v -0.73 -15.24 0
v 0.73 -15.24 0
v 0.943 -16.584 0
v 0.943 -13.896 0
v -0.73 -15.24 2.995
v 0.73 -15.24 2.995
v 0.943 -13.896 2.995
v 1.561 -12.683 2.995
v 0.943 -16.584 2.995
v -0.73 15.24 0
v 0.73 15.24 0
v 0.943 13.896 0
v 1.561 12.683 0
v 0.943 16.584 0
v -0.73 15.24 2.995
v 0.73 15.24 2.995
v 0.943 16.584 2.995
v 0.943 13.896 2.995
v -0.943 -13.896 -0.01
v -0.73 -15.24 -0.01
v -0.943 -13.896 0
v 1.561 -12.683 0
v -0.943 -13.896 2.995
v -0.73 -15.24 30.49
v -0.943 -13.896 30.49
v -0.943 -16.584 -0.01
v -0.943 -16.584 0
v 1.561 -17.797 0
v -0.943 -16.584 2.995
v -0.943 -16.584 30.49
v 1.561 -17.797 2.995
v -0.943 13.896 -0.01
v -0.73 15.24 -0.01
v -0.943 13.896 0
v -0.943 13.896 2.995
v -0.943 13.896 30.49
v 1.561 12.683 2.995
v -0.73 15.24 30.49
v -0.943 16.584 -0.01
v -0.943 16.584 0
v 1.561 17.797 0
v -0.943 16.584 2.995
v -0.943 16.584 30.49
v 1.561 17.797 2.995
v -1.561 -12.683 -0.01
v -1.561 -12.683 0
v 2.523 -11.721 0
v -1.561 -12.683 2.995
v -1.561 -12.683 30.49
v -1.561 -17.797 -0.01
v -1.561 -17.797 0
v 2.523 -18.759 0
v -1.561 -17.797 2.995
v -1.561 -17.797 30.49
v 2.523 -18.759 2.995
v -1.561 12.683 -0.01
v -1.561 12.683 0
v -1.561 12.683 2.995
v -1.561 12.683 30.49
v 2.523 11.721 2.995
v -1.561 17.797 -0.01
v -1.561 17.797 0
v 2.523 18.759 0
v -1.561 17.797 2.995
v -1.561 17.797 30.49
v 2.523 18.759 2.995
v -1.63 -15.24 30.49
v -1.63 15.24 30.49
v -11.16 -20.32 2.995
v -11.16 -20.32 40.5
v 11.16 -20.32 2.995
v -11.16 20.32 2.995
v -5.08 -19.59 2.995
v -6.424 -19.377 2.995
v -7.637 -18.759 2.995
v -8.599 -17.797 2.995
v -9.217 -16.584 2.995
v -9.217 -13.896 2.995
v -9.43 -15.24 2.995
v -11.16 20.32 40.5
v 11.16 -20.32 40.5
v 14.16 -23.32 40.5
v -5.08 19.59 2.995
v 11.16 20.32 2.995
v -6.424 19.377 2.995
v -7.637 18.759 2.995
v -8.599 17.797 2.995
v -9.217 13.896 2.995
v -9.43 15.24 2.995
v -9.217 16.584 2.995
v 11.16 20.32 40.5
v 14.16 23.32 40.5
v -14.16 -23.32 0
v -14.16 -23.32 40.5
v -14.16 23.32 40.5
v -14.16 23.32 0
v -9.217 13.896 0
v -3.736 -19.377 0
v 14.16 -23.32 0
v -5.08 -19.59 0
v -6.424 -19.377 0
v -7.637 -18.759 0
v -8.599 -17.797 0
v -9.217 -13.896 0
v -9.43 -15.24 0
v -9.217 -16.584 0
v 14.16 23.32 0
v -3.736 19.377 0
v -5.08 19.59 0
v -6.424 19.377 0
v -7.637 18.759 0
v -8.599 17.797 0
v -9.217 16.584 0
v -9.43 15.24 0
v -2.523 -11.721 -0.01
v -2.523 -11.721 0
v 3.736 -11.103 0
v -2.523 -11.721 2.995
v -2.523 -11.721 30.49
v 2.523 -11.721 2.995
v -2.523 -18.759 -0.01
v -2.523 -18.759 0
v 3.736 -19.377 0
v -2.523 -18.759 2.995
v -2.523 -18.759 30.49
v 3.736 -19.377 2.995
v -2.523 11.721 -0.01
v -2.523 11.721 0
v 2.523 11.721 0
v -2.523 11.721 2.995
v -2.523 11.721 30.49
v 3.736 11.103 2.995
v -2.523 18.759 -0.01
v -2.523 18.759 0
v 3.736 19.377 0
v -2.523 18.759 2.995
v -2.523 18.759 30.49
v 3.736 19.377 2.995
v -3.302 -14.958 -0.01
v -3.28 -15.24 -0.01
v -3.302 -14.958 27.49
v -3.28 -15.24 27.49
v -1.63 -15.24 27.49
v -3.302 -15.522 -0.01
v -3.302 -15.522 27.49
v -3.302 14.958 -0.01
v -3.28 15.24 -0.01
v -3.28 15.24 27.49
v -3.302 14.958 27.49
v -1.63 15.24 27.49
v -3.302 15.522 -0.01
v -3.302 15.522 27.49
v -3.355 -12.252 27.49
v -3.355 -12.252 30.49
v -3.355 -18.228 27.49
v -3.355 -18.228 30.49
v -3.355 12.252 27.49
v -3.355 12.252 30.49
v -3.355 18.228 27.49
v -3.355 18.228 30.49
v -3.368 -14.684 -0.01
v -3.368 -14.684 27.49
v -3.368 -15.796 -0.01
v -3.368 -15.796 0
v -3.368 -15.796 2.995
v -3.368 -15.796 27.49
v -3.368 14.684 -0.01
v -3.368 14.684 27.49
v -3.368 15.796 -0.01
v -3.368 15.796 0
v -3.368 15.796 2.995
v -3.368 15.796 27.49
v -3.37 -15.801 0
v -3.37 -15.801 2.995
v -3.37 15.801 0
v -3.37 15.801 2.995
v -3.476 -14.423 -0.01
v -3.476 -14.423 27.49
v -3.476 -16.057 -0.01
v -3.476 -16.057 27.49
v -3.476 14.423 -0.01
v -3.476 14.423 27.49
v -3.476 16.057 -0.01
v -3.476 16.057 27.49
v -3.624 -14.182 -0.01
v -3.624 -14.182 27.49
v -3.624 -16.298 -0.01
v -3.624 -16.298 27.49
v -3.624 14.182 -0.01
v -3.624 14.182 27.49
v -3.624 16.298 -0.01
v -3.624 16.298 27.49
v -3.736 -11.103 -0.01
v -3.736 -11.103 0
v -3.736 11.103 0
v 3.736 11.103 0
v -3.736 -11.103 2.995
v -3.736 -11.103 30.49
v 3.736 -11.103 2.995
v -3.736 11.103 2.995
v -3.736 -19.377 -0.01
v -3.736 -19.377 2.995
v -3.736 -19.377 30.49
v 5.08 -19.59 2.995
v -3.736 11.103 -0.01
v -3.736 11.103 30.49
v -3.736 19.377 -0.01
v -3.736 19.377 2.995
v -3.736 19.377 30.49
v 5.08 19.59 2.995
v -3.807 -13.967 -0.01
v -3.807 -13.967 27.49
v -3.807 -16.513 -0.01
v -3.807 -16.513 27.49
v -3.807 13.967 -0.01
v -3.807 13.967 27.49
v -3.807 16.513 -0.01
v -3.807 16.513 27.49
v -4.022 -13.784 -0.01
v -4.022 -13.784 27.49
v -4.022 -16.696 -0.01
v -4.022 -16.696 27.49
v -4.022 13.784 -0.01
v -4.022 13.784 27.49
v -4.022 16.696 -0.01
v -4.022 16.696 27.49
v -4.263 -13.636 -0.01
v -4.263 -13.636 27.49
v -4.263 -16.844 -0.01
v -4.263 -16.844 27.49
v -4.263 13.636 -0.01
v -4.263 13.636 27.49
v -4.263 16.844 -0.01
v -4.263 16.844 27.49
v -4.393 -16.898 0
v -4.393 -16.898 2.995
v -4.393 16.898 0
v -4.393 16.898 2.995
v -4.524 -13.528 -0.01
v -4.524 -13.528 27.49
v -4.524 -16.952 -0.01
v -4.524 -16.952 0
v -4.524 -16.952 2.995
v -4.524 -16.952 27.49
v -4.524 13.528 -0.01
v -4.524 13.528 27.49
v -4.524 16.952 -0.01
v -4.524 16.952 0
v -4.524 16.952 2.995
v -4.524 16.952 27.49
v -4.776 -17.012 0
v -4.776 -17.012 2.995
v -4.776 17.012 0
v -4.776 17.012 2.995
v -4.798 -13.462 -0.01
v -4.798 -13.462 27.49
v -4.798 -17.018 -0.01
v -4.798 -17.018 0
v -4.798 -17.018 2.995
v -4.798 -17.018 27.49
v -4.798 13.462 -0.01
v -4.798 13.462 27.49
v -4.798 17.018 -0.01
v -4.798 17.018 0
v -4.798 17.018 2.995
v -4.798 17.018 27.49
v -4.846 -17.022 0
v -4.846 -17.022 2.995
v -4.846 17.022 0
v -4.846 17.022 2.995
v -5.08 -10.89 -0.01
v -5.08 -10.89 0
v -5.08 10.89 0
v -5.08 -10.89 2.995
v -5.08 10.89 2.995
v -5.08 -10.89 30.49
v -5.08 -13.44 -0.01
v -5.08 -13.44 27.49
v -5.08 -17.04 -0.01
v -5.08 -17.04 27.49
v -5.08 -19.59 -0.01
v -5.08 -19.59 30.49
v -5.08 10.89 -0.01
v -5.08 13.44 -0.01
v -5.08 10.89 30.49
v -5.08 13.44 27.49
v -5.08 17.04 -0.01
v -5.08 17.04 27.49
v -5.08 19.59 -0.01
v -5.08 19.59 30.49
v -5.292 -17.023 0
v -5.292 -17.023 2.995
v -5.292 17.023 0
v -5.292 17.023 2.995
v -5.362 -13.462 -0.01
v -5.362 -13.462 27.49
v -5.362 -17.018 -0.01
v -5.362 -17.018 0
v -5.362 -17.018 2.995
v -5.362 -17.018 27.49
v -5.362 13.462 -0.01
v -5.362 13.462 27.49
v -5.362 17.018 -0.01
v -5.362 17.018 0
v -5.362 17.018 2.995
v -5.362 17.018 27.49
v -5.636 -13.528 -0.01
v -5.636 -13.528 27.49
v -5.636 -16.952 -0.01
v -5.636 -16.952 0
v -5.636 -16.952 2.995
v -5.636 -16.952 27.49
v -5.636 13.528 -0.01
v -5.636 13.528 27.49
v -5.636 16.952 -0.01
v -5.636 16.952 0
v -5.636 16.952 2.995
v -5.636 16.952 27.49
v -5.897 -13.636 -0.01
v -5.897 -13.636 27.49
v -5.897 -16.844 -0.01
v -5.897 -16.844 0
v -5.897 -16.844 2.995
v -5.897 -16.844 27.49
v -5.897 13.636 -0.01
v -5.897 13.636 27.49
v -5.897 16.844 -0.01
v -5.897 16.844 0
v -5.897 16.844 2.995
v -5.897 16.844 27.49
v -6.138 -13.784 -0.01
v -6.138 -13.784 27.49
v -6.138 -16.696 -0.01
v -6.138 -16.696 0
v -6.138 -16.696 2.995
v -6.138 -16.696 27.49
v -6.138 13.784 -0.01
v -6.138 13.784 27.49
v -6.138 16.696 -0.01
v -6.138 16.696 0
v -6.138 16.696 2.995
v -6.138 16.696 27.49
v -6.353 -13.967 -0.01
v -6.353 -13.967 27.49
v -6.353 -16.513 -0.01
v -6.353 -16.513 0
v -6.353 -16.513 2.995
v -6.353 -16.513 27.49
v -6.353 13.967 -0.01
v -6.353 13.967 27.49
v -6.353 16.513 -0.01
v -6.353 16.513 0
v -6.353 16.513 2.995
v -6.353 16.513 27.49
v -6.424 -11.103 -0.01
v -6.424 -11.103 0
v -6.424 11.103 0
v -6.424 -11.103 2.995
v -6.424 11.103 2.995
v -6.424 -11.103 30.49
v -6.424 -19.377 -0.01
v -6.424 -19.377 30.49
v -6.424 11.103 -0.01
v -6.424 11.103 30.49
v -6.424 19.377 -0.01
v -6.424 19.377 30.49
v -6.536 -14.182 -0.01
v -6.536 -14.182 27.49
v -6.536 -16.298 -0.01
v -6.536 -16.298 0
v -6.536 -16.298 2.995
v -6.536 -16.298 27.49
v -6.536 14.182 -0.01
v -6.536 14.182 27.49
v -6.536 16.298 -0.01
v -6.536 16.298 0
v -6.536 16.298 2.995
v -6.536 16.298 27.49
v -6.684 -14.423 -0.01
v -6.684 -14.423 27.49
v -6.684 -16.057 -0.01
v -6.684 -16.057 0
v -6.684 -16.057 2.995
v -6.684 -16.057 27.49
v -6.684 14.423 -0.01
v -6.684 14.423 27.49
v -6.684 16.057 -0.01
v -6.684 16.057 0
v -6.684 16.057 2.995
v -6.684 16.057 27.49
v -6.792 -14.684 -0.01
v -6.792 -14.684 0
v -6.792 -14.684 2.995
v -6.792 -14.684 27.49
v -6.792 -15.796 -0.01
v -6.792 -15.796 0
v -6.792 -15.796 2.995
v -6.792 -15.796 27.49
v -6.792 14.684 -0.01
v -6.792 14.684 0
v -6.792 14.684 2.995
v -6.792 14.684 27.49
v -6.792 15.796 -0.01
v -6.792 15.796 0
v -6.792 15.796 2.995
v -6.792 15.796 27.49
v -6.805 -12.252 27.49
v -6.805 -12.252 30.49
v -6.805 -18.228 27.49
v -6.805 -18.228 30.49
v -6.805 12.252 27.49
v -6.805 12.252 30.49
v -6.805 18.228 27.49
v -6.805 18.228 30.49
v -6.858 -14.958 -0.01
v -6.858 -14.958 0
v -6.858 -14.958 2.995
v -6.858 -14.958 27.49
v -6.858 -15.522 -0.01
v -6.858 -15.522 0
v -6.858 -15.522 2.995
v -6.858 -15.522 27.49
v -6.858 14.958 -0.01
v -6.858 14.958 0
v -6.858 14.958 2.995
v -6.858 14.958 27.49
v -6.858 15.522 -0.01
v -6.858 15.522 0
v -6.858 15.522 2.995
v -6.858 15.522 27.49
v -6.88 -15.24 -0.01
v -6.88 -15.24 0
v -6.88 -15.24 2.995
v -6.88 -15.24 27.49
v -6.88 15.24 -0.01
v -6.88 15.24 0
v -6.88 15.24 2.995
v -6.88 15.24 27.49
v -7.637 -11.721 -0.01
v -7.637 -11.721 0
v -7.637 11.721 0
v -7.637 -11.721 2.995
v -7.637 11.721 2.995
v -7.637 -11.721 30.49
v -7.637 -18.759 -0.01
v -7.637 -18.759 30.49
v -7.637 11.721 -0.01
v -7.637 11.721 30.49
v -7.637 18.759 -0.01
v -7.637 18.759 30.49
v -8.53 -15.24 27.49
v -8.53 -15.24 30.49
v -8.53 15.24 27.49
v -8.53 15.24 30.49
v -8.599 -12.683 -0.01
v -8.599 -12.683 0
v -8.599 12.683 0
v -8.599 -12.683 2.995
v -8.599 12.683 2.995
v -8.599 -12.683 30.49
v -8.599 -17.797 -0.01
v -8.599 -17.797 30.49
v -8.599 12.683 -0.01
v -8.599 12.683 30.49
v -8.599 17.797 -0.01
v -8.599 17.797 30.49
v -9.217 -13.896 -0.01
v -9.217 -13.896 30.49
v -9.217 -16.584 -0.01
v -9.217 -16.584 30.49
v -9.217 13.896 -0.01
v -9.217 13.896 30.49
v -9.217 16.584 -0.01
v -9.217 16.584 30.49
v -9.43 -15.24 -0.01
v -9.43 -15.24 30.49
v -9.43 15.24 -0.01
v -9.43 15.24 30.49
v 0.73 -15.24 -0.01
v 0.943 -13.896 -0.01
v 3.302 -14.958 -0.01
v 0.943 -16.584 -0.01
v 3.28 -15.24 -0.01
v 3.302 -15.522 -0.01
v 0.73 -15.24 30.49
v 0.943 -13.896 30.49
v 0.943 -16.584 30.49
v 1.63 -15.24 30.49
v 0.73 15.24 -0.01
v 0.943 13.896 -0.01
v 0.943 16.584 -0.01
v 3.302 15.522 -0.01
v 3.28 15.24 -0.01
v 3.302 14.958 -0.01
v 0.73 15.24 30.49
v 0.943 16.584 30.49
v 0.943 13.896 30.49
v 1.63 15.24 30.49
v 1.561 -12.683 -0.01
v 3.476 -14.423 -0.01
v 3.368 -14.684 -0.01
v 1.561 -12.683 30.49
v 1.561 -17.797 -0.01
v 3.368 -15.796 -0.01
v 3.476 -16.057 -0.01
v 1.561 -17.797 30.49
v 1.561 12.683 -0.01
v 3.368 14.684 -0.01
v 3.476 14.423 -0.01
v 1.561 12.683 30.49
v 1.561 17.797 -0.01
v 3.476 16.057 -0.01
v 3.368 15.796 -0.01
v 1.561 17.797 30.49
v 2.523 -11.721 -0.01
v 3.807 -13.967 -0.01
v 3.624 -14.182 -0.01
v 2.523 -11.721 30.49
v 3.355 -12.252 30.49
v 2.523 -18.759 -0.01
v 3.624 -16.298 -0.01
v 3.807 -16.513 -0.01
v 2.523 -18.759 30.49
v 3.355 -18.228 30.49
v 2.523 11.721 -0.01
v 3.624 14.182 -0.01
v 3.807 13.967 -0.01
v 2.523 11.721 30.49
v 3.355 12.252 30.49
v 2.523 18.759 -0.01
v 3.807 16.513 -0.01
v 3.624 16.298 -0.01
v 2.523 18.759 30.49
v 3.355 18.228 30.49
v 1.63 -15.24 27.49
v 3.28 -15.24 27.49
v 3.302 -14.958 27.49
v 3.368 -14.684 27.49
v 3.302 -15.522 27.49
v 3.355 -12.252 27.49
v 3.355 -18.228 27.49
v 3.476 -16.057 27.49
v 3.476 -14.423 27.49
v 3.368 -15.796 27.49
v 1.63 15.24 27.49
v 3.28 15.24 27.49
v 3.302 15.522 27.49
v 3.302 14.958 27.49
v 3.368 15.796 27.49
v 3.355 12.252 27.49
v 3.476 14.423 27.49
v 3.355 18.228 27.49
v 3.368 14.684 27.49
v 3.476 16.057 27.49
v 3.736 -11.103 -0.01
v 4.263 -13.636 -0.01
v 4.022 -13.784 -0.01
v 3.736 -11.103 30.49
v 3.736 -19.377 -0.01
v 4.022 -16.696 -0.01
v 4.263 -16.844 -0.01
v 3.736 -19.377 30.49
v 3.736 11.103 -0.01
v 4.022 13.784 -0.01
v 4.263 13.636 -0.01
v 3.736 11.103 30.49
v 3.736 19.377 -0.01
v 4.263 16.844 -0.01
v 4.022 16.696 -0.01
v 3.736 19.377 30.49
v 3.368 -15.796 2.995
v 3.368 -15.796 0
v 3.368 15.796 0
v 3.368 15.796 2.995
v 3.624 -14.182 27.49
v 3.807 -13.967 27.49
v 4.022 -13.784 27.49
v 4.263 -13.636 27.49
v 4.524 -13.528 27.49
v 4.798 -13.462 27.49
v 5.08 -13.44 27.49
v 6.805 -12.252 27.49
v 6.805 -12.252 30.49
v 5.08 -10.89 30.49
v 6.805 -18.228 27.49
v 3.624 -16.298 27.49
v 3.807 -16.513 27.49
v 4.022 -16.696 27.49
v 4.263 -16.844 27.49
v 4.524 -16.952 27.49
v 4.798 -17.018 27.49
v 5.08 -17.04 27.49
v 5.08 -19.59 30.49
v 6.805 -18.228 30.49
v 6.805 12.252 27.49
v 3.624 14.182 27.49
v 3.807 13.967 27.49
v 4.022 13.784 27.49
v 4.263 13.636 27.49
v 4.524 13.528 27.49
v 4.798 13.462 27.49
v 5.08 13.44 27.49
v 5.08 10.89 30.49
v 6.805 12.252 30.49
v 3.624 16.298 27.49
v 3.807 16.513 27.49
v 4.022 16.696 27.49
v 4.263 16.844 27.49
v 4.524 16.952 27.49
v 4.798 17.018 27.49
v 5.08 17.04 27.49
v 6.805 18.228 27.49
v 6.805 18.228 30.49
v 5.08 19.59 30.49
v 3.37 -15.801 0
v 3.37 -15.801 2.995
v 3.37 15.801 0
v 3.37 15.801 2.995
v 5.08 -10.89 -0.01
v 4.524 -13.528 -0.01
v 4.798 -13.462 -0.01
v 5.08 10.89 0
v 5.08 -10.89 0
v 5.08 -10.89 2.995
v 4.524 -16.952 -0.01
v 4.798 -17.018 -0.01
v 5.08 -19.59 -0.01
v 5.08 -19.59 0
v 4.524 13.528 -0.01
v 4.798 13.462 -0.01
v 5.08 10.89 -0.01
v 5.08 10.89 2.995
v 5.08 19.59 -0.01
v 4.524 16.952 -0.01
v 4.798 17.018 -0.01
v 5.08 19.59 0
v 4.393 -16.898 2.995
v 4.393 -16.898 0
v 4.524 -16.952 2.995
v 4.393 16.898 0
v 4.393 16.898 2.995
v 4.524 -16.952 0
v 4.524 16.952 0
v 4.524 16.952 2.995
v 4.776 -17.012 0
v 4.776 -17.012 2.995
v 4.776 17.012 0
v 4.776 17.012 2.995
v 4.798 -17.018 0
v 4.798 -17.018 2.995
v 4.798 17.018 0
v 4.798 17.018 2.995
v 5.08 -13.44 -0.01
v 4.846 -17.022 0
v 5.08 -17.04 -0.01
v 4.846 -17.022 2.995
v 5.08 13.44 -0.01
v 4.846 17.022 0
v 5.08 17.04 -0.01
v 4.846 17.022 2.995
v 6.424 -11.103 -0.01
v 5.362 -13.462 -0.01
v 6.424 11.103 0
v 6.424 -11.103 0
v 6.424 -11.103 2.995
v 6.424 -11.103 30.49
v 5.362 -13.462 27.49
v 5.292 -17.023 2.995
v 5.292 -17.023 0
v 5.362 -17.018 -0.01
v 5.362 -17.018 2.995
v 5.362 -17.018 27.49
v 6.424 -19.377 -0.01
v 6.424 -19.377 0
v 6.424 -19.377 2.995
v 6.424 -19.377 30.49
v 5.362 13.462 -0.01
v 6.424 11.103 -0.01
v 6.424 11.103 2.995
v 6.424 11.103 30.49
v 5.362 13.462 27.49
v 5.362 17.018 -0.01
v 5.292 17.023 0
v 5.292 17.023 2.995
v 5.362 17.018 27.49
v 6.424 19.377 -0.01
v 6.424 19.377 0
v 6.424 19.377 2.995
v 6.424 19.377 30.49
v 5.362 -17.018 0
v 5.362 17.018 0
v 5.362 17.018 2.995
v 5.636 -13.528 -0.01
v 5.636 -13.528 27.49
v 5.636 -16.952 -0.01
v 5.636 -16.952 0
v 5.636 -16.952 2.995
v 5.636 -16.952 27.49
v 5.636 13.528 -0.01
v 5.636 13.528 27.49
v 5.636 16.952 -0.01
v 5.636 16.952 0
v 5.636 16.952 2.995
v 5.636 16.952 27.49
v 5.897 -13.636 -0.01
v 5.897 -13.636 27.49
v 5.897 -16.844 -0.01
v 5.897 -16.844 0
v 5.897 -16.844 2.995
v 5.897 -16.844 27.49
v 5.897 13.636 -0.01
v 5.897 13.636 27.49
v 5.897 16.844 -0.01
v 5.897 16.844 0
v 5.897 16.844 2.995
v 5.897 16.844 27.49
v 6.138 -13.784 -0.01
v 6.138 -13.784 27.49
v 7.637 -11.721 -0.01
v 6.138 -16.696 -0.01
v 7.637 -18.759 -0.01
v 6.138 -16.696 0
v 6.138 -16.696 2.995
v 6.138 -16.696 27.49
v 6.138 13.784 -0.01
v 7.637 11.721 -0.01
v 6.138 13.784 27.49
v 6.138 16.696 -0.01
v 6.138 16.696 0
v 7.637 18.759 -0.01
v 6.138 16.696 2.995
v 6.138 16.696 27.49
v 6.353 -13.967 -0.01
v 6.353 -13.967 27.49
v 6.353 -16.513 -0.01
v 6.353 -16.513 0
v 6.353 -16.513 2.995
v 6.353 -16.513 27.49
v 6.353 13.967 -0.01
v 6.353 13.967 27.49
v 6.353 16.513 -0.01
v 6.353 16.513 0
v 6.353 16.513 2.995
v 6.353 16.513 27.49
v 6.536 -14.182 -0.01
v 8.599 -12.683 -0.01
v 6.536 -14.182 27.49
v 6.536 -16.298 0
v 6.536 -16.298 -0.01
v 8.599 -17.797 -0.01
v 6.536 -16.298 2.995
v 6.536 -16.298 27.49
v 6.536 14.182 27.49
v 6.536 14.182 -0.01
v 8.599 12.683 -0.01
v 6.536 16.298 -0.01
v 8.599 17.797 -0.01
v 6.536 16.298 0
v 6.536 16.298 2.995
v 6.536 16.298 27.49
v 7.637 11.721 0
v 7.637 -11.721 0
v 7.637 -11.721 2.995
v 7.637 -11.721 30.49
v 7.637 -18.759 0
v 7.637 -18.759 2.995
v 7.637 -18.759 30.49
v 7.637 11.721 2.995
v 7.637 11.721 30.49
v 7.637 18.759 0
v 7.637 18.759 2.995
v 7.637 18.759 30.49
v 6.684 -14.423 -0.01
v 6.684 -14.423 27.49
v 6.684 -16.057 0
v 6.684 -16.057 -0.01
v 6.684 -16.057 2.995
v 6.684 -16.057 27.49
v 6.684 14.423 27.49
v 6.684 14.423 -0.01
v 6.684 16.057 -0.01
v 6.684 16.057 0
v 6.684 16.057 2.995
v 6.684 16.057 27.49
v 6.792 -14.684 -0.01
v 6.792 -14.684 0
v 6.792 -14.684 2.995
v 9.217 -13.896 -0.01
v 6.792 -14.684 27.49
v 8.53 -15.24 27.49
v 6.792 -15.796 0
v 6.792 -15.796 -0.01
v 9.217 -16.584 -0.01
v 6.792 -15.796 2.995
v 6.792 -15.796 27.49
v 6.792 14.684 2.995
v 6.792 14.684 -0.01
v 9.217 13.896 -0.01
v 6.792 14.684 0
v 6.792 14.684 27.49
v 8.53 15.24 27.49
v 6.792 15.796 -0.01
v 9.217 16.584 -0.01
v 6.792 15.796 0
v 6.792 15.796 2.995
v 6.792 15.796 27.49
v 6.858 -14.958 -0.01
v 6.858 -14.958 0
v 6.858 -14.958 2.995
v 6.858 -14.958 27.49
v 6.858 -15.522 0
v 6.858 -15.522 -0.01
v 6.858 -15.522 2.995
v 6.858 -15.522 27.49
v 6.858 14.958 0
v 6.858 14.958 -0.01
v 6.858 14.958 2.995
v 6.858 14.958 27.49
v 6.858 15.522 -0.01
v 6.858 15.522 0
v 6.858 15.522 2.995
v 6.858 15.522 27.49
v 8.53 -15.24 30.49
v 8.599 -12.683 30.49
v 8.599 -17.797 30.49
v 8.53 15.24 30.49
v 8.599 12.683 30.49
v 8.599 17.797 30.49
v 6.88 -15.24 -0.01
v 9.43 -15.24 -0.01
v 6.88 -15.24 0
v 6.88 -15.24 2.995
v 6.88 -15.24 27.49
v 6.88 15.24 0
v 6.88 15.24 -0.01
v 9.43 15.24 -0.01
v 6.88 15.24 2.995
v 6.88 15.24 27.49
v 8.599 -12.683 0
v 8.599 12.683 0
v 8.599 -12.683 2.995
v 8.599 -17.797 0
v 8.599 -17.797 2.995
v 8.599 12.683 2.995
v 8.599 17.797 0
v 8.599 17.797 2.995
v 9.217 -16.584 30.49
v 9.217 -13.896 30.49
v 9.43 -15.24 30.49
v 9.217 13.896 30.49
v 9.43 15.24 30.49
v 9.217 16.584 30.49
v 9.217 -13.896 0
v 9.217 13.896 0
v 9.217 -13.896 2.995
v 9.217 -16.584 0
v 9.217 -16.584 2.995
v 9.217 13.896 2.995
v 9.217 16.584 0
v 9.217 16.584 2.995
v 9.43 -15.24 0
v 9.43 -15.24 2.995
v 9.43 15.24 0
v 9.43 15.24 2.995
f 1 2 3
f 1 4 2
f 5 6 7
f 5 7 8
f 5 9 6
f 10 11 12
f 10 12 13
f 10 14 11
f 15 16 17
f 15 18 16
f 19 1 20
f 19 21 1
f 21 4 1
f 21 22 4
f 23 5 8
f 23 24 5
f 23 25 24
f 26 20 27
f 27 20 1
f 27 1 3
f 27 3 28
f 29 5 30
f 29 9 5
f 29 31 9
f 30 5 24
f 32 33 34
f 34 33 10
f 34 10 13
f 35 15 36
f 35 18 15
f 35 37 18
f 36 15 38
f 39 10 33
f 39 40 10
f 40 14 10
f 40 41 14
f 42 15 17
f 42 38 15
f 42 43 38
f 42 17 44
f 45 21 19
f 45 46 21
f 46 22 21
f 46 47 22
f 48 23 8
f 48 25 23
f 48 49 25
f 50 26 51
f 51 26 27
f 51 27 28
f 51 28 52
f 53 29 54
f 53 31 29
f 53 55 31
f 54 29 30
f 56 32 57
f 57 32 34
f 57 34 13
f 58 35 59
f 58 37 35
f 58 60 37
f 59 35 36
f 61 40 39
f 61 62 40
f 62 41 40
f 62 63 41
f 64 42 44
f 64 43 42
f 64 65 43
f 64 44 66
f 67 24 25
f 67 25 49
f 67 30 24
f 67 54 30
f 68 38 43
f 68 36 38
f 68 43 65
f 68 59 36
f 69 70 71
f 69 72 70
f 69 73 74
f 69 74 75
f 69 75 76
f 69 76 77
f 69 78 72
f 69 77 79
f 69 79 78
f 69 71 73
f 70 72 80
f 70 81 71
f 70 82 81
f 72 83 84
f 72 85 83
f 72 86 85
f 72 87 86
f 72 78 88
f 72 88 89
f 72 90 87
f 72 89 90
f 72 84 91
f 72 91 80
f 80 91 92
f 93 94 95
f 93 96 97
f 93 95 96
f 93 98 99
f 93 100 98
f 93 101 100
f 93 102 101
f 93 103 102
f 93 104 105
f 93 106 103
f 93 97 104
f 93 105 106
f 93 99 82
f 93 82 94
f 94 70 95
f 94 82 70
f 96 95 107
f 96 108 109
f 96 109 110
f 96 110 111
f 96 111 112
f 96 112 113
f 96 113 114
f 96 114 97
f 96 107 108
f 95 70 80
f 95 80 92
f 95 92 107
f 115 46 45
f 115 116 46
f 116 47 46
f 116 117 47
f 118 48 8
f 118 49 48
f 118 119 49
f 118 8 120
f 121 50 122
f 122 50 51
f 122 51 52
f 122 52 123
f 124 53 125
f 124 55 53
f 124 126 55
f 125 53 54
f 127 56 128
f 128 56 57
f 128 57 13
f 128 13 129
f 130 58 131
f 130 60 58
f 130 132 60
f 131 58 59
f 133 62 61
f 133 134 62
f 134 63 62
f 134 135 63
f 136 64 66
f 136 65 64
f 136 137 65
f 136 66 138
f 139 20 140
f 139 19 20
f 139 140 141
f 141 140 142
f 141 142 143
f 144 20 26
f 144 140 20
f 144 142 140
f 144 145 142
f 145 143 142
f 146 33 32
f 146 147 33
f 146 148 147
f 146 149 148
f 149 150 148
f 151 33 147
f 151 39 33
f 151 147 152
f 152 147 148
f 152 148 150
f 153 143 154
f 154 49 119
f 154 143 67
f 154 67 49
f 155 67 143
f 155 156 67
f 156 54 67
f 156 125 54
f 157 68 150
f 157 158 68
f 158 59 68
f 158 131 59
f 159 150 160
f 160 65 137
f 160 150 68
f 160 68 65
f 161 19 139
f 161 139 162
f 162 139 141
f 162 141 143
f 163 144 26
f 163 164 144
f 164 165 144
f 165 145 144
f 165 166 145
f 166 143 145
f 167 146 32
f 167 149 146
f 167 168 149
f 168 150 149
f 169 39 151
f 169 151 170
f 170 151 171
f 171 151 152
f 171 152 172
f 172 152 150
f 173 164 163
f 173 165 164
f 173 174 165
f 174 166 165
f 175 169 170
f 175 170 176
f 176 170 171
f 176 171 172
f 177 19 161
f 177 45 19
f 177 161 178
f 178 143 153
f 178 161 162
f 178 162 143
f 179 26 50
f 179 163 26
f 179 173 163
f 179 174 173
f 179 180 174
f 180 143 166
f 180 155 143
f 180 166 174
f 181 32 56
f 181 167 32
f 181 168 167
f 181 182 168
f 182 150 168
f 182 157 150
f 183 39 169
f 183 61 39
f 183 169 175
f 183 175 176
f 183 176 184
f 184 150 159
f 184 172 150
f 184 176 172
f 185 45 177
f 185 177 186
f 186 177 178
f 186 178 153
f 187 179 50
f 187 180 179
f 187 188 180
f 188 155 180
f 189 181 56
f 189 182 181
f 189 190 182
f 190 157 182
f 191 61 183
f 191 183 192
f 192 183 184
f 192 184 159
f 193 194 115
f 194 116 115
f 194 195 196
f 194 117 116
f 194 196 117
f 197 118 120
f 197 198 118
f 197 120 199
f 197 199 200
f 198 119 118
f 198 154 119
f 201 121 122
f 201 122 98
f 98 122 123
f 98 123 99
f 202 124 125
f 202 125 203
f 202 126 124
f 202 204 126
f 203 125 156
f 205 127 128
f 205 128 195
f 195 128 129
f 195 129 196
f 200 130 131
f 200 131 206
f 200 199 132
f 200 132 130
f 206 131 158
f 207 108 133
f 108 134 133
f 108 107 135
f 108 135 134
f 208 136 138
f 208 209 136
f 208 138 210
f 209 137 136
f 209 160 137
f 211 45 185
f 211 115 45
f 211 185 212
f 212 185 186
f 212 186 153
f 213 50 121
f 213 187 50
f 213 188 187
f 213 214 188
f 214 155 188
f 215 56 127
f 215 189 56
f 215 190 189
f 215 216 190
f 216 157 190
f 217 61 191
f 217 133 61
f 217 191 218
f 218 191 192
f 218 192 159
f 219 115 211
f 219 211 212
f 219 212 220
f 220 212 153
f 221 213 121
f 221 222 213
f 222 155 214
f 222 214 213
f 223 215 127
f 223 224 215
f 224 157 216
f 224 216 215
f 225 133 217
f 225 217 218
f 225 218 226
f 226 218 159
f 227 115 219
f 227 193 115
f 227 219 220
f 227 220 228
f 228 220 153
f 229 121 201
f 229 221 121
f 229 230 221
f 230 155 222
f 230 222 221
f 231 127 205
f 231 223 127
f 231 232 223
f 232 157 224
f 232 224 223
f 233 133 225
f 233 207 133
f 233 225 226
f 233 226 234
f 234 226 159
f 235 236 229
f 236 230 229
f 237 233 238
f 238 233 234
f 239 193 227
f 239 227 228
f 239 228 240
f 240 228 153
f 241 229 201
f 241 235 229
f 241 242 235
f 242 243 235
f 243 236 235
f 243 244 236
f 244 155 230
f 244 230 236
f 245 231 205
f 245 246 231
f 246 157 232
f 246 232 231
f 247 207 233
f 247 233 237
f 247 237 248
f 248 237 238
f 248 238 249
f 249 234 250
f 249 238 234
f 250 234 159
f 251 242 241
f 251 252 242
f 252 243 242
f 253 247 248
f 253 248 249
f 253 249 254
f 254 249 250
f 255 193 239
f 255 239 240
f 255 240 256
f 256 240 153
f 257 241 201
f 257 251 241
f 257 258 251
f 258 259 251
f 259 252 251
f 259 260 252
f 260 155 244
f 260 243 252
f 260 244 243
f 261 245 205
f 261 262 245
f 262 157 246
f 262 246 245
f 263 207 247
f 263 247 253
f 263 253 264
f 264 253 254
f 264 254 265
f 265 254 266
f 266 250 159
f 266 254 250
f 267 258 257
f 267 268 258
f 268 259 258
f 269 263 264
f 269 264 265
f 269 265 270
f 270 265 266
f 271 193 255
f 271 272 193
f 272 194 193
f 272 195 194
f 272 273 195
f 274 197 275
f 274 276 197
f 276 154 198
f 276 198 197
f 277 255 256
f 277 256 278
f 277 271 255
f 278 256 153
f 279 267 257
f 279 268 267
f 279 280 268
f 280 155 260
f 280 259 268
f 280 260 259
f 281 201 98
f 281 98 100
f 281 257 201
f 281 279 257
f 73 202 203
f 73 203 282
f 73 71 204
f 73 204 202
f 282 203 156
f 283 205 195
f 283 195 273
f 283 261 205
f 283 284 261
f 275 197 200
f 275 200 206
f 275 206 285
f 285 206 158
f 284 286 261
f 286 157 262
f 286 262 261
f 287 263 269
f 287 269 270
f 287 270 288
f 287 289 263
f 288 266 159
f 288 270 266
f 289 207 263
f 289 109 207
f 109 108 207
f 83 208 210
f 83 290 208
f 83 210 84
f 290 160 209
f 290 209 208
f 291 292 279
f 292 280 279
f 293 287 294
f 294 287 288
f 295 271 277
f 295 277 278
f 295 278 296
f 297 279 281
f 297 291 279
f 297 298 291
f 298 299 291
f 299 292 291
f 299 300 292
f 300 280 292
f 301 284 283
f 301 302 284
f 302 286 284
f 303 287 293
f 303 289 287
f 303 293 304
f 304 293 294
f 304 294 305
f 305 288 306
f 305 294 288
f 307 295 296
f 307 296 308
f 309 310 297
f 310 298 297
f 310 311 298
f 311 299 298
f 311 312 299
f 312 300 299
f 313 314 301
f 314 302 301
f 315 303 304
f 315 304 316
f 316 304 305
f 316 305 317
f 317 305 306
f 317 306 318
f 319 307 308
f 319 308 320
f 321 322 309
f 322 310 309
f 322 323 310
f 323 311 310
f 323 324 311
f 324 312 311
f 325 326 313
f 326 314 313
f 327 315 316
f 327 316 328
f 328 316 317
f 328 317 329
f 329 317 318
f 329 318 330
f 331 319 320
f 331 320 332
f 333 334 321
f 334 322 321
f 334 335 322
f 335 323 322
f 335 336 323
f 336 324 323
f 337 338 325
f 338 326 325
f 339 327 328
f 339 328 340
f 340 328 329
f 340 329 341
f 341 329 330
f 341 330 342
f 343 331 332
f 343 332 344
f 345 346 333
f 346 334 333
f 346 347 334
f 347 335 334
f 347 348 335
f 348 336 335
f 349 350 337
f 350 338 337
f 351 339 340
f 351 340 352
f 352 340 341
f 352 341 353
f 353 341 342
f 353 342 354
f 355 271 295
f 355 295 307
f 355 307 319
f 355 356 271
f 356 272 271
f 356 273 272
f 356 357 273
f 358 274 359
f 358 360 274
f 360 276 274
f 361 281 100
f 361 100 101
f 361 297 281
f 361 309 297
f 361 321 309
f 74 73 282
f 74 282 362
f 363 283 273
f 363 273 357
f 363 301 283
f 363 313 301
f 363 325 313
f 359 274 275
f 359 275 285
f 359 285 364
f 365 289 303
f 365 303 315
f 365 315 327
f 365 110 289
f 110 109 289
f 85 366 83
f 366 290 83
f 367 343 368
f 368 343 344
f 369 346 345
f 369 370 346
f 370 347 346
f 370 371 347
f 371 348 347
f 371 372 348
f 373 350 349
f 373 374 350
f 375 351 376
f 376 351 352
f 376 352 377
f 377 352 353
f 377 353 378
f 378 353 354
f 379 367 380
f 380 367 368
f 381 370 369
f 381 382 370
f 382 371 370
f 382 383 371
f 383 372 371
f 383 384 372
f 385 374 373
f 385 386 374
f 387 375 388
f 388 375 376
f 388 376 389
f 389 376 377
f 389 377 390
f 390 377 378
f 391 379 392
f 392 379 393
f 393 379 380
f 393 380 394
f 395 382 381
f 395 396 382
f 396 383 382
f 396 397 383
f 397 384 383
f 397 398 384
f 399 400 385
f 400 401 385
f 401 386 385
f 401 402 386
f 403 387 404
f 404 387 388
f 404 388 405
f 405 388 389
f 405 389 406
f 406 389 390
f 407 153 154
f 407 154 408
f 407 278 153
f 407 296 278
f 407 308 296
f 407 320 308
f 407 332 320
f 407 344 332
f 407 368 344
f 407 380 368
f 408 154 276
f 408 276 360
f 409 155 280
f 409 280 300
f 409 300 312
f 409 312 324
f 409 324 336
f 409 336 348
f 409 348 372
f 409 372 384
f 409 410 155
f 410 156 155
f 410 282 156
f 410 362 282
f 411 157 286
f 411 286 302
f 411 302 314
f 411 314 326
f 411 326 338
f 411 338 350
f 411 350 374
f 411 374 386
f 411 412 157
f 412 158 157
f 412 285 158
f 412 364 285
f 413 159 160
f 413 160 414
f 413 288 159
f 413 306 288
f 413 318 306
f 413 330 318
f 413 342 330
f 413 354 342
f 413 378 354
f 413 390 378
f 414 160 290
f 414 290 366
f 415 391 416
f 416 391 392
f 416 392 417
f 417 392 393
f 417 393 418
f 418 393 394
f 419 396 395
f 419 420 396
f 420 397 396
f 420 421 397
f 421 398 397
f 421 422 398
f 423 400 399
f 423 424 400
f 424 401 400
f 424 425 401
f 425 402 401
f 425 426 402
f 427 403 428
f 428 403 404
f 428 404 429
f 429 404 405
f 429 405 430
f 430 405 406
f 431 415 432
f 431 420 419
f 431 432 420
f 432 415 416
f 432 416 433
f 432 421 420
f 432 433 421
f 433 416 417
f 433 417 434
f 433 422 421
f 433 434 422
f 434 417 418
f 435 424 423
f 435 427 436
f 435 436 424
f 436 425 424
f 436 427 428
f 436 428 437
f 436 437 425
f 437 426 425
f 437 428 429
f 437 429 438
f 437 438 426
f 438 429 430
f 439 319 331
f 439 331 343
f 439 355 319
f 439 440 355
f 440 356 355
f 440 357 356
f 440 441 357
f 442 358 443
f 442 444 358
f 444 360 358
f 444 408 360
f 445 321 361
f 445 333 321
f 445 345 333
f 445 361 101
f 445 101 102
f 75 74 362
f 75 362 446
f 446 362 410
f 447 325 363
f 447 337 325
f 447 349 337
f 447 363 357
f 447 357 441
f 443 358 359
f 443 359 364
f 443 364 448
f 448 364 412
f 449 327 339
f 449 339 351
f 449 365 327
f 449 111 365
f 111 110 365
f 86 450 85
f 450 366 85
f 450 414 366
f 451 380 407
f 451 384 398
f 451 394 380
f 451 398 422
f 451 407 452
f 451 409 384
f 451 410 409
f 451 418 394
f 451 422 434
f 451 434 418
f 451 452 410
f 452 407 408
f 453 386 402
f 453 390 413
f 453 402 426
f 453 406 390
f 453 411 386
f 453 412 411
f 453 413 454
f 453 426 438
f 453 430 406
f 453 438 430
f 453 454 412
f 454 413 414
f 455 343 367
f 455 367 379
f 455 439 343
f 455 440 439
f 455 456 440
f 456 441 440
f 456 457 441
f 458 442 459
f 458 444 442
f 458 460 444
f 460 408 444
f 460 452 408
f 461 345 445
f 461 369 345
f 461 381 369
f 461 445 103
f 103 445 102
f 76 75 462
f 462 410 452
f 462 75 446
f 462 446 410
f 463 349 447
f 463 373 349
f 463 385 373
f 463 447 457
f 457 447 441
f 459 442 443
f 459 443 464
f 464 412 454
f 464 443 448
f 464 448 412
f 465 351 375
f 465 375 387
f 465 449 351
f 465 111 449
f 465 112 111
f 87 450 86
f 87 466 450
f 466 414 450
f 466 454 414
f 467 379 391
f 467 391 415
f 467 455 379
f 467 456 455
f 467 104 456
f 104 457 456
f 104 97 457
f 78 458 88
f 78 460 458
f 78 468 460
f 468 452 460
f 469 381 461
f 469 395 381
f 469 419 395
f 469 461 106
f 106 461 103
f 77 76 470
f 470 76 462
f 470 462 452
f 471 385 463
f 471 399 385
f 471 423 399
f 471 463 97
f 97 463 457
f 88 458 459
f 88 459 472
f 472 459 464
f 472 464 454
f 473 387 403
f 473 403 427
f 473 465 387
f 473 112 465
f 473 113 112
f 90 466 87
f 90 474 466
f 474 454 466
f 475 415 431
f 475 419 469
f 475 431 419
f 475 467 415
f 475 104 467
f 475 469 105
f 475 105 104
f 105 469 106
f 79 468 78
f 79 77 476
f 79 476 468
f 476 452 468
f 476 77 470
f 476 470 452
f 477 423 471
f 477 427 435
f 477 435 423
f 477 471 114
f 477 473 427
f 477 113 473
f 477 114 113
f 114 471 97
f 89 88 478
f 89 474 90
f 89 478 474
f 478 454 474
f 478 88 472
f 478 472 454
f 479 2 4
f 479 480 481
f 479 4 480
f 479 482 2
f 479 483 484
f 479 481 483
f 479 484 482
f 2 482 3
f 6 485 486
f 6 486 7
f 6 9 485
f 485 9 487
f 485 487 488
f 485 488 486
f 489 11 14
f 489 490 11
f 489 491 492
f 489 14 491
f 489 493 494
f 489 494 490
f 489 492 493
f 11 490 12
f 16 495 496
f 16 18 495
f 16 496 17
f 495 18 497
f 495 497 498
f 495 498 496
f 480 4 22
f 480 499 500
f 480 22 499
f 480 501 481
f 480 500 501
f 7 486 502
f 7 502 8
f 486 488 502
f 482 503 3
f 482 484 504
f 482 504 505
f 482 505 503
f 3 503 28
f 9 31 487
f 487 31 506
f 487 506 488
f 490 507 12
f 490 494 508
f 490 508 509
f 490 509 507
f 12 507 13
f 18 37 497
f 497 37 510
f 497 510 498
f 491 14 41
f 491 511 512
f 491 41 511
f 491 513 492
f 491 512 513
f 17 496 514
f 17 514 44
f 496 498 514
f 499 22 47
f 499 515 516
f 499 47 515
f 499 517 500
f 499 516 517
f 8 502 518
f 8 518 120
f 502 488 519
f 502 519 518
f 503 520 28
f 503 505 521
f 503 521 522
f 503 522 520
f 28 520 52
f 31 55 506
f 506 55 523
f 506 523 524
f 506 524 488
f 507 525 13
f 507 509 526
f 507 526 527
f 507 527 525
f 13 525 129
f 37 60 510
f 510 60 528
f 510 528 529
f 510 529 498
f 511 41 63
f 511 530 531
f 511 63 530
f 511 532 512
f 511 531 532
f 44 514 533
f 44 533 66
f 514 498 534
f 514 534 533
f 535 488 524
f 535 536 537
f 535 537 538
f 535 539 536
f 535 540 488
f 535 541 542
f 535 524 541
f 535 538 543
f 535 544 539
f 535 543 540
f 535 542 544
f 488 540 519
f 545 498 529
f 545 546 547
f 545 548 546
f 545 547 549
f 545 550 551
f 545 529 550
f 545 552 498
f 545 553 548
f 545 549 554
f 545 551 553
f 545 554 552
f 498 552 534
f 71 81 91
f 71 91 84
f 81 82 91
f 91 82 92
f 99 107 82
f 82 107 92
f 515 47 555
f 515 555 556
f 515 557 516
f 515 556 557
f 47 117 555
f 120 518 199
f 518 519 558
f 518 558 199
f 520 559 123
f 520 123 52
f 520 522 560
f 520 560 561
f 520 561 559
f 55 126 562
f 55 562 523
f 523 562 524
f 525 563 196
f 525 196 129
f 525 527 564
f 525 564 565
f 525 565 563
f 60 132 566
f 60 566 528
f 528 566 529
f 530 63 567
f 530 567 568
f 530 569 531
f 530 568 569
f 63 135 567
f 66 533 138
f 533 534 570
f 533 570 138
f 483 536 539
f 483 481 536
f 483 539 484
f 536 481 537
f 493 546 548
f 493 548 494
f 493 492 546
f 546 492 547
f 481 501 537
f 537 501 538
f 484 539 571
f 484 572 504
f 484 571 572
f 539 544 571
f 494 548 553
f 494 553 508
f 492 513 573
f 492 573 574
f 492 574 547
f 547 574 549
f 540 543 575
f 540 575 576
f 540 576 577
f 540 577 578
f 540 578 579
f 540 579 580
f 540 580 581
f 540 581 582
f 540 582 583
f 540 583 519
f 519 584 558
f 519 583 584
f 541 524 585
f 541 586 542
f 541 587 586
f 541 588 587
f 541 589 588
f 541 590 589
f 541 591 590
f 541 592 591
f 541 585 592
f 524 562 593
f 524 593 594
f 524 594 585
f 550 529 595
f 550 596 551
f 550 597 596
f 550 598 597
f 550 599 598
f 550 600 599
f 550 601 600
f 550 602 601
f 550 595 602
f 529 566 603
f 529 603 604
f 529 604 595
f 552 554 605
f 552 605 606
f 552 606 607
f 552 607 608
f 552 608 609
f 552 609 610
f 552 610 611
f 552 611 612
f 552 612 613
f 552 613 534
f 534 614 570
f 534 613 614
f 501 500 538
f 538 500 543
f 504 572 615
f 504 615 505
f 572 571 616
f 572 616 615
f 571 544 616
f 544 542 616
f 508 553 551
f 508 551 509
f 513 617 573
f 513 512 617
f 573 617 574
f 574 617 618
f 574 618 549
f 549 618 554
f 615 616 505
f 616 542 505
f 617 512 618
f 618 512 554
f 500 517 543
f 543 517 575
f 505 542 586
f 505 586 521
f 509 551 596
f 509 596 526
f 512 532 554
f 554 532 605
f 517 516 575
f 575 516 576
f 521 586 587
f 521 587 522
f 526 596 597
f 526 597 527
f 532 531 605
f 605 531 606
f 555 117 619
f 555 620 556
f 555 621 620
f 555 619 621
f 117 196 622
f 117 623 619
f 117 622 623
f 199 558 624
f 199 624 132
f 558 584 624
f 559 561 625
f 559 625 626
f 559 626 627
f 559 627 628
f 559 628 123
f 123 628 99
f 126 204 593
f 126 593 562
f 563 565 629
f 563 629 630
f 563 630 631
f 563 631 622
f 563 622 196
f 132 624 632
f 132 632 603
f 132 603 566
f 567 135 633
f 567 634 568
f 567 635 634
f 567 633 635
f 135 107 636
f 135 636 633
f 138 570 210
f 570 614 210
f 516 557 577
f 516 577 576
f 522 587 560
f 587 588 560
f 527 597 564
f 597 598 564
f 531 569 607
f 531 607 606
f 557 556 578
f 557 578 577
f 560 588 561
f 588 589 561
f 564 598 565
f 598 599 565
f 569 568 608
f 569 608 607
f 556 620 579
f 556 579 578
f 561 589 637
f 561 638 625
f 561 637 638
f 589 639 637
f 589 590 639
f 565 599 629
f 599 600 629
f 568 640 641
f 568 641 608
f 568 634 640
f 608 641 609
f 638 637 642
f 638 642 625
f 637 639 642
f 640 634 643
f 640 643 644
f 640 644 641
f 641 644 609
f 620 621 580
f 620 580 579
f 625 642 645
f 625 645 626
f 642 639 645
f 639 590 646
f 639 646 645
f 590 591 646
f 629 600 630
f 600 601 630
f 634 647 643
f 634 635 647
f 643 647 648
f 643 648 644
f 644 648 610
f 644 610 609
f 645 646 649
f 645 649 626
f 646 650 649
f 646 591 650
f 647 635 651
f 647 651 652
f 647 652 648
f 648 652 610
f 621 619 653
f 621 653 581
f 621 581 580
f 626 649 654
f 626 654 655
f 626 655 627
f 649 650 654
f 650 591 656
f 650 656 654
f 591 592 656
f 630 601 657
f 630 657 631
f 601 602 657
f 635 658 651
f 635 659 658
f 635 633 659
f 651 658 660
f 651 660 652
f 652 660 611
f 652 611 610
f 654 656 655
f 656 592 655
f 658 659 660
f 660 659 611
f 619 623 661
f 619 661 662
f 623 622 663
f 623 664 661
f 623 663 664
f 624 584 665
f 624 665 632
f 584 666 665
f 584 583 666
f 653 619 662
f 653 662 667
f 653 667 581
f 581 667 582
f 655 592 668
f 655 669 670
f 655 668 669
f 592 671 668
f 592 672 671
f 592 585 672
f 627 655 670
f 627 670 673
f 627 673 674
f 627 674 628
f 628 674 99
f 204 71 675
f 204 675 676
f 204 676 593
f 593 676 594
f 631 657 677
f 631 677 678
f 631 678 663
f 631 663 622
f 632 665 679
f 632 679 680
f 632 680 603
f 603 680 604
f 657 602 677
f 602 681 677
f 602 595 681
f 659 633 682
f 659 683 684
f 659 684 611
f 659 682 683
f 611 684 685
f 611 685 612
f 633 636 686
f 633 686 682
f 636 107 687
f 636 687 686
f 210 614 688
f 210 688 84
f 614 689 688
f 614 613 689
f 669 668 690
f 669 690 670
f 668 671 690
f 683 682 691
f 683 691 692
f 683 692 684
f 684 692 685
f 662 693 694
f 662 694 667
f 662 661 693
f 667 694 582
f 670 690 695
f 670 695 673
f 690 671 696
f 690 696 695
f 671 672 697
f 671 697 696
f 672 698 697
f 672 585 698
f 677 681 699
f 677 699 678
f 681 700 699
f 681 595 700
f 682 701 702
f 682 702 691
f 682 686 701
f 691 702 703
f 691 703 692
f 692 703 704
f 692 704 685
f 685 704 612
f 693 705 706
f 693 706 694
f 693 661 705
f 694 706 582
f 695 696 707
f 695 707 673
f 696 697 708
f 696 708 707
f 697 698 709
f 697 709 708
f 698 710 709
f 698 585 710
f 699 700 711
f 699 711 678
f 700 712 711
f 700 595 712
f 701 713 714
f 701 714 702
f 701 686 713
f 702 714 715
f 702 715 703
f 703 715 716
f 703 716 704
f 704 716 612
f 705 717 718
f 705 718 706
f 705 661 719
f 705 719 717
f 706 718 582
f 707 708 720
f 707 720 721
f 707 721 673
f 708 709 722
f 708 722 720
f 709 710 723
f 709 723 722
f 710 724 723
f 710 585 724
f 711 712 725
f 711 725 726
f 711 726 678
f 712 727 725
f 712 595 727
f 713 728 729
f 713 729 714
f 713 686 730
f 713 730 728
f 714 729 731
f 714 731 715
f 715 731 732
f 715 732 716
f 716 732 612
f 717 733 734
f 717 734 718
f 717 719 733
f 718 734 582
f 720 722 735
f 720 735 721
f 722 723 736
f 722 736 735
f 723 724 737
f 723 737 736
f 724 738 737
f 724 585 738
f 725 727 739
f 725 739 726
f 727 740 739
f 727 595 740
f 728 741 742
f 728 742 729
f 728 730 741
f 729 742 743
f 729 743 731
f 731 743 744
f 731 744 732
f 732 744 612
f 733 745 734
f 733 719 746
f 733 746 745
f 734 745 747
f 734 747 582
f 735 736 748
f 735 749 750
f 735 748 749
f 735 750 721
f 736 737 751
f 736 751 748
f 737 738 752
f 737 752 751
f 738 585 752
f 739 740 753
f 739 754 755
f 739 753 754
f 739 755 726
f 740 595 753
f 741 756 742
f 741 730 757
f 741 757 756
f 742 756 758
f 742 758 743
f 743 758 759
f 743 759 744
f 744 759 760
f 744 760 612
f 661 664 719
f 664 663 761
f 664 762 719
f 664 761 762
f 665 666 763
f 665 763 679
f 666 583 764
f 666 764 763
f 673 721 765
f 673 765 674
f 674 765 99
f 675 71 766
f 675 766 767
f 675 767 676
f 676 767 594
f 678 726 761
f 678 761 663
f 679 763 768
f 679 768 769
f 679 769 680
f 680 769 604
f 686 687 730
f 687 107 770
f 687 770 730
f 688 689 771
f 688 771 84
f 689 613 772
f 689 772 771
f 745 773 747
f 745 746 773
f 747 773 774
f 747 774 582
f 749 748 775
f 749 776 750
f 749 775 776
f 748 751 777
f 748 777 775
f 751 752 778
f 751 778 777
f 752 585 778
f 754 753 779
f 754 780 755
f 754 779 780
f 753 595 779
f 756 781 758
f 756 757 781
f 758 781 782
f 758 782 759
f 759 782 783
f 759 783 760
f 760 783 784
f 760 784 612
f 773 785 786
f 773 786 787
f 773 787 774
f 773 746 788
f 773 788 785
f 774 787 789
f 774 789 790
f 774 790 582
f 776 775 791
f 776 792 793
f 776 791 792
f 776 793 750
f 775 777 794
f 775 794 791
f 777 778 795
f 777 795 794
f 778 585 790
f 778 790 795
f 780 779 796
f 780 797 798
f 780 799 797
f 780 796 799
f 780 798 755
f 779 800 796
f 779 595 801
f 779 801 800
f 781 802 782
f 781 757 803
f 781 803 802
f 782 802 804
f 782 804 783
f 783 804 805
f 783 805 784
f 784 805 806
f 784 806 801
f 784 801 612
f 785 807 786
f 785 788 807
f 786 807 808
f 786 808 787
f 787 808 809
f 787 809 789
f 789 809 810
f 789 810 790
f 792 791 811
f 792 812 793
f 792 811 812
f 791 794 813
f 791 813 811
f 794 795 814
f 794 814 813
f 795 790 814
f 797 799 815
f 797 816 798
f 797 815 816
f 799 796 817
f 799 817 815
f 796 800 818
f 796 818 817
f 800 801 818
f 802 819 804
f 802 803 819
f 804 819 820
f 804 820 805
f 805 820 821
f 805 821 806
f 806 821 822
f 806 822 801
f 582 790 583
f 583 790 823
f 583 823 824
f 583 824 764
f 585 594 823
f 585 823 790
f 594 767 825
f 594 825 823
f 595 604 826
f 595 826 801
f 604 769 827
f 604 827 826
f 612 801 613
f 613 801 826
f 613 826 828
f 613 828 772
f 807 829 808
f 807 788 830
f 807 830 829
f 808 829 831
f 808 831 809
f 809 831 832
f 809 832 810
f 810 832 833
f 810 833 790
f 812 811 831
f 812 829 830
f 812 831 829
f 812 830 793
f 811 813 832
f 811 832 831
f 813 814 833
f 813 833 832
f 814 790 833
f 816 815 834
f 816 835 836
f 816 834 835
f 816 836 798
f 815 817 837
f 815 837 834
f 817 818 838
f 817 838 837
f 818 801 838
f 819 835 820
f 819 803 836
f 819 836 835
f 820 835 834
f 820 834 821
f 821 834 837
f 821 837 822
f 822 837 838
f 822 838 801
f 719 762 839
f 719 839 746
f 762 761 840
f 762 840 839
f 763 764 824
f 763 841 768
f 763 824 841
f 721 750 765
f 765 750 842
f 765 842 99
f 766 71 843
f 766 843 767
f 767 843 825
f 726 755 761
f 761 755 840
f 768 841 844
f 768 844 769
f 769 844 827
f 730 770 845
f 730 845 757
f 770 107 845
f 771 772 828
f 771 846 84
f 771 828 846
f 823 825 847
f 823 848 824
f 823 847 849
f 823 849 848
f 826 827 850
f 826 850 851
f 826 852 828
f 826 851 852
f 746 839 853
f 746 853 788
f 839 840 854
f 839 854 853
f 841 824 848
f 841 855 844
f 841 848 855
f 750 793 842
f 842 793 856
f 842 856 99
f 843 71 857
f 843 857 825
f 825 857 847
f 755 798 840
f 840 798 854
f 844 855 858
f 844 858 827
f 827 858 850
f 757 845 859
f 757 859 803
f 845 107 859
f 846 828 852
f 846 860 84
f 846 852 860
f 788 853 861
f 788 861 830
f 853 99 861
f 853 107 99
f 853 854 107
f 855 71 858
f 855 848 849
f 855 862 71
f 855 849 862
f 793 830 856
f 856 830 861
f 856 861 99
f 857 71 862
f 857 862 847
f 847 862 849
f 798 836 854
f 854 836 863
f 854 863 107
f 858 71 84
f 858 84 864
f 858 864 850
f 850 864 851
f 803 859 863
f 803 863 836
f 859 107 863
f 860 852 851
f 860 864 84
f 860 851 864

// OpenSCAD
// file: ../configuration.scad
$fn=40; // model faces resolution.

//OBECNE PARAMETRY 
//----------------------------------------------------------------
//----------------------------------------------------------------

vyska_krystalu=24;
zakladna_krystalu_x=12;
zakladna_krystalu_y=12;
sila_steny=3;
vyska_zapusti_pro_PCB=10; //výčka krycího matriálu pro PCB a zároveň pro vytvoření vany pro zalití silikonem, kvůli světlotěsnoti.
vyska_SIPM_nad_PCB=4; //víška celého SIPM senzoru
tolerance_pro_dotazeni_k_SIPM=-0.5; // kvůli dotažení krystalu k SIPM
velikost_modulu_x=2; //počet der
velikost_modulu_y=4;
rotec_der_modulu=10.16;

vyska_matky=3;
sirka_matky=6.7;
prumer_sroubu=3.4;
// file: ../src/SIPMBOX01A.scad
include <../configuration.scad>

module SIPMBOX01A()
{ 

  crystal_refletctor_thickness = 1;

  translate([0,0,(vyska_krystalu+sila_steny+vyska_zapusti_pro_PCB+vyska_SIPM_nad_PCB+tolerance_pro_dotazeni_k_SIPM)/2]) 
    difference (){
      //základní kvádr
      cube([ 2 * sila_steny + velikost_modulu_x * rotec_der_modulu + 2 * crystal_refletctor_thickness, 2 * sila_steny+velikost_modulu_y*rotec_der_modulu, vyska_krystalu + sila_steny + vyska_zapusti_pro_PCB + vyska_SIPM_nad_PCB + tolerance_pro_dotazeni_k_SIPM], center = true);
        
      //výřez v hlavním kvádru
      translate([0,0,sila_steny]) 
        cube([velikost_modulu_x * rotec_der_modulu + 2 * crystal_refletctor_thickness, velikost_modulu_y * rotec_der_modulu, vyska_krystalu+sila_steny+vyska_zapusti_pro_PCB+vyska_SIPM_nad_PCB+tolerance_pro_dotazeni_k_SIPM+0.01], center = true);
        
      //výřez otvorů pro šrouby do kvádru
      translate([(velikost_modulu_x-1)*rotec_der_modulu/2,(velikost_modulu_y-1)*rotec_der_modulu/2,-0.01]) 
        cylinder (h = vyska_krystalu+sila_steny+vyska_zapusti_pro_PCB+vyska_SIPM_nad_PCB+tolerance_pro_dotazeni_k_SIPM+0.01, r= (prumer_sroubu+0.2)/2, $fn=40, center = true);  
        
      //výřez otvorů pro šrouby do kvádru
      translate([-(velikost_modulu_x-1)*rotec_der_modulu/2,(velikost_modulu_y-1)*rotec_der_modulu/2,-0.01]) 
        cylinder (h = vyska_krystalu+sila_steny+vyska_zapusti_pro_PCB+vyska_SIPM_nad_PCB+tolerance_pro_dotazeni_k_SIPM+0.01, r= (prumer_sroubu+0.2)/2, $fn=40, center = true);
  
      //výřez otvorů pro šrouby do kvádru
      translate([(velikost_modulu_x-1)*rotec_der_modulu/2,-(velikost_modulu_y-1)*rotec_der_modulu/2,-0.01]) 
        cylinder (h = vyska_krystalu+sila_steny+vyska_zapusti_pro_PCB+vyska_SIPM_nad_PCB+tolerance_pro_dotazeni_k_SIPM+0.01, r= (prumer_sroubu+0.2)/2, $fn=40, center = true); 
 
      //výřez otvorů pro šrouby do kvádru
      translate([-(velikost_modulu_x-1)*rotec_der_modulu/2,-(velikost_modulu_y-1)*rotec_der_modulu/2,-0.01]) 
        cylinder (h = vyska_krystalu+sila_steny+vyska_zapusti_pro_PCB+vyska_SIPM_nad_PCB+tolerance_pro_dotazeni_k_SIPM+0.01, r= (prumer_sroubu+0.2)/2, $fn=40, center = true);         
    }

    //sloupek1  
    translate([(velikost_modulu_x-1)*rotec_der_modulu/2,(velikost_modulu_y-1)*rotec_der_modulu/2,-0.01]) 
      SLOUPEK();

    //výřez otvorů pro šrouby do kvádru
    translate([-(velikost_modulu_x-1)*rotec_der_modulu/2,(velikost_modulu_y-1)*rotec_der_modulu/2,-0.01]) 
      SLOUPEK();

    //výřez otvorů pro šrouby do kvádru
    translate([(velikost_modulu_x-1)*rotec_der_modulu/2,-(velikost_modulu_y-1)*rotec_der_modulu/2,-0.01]) 
      SLOUPEK();

    //výřez otvorů pro šrouby do kvádru
    translate([-(velikost_modulu_x-1)*rotec_der_modulu/2,-(velikost_modulu_y-1)*rotec_der_modulu/2,-0.01]) 
      SLOUPEK();
}

//sloupek na senzor
module SLOUPEK()
{    
  translate([0,0,0]) 
    difference () 
    {  
      cylinder (h = vyska_krystalu+sila_steny+vyska_SIPM_nad_PCB+tolerance_pro_dotazeni_k_SIPM, r= sirka_matky/2+(sila_steny-1)/2, $fn=20);
      
      translate([0,0,vyska_krystalu+sila_steny+vyska_SIPM_nad_PCB+tolerance_pro_dotazeni_k_SIPM-vyska_matky]) 
        cylinder (h = vyska_matky+0.01, r= (sirka_matky+0.2)/2, $fn=6);
        
      translate([0,0,-0.01]) 
        cylinder (h = vyska_krystalu+sila_steny+vyska_SIPM_nad_PCB+tolerance_pro_dotazeni_k_SIPM+vyska_matky+0.01, r= (prumer_sroubu+0.2)/2, $fn=40);
    }       
}
   

  
 
// main file
use <../src/SIPMBOX01A.scad>

include <../configuration.scad>

SIPMBOX01A();
